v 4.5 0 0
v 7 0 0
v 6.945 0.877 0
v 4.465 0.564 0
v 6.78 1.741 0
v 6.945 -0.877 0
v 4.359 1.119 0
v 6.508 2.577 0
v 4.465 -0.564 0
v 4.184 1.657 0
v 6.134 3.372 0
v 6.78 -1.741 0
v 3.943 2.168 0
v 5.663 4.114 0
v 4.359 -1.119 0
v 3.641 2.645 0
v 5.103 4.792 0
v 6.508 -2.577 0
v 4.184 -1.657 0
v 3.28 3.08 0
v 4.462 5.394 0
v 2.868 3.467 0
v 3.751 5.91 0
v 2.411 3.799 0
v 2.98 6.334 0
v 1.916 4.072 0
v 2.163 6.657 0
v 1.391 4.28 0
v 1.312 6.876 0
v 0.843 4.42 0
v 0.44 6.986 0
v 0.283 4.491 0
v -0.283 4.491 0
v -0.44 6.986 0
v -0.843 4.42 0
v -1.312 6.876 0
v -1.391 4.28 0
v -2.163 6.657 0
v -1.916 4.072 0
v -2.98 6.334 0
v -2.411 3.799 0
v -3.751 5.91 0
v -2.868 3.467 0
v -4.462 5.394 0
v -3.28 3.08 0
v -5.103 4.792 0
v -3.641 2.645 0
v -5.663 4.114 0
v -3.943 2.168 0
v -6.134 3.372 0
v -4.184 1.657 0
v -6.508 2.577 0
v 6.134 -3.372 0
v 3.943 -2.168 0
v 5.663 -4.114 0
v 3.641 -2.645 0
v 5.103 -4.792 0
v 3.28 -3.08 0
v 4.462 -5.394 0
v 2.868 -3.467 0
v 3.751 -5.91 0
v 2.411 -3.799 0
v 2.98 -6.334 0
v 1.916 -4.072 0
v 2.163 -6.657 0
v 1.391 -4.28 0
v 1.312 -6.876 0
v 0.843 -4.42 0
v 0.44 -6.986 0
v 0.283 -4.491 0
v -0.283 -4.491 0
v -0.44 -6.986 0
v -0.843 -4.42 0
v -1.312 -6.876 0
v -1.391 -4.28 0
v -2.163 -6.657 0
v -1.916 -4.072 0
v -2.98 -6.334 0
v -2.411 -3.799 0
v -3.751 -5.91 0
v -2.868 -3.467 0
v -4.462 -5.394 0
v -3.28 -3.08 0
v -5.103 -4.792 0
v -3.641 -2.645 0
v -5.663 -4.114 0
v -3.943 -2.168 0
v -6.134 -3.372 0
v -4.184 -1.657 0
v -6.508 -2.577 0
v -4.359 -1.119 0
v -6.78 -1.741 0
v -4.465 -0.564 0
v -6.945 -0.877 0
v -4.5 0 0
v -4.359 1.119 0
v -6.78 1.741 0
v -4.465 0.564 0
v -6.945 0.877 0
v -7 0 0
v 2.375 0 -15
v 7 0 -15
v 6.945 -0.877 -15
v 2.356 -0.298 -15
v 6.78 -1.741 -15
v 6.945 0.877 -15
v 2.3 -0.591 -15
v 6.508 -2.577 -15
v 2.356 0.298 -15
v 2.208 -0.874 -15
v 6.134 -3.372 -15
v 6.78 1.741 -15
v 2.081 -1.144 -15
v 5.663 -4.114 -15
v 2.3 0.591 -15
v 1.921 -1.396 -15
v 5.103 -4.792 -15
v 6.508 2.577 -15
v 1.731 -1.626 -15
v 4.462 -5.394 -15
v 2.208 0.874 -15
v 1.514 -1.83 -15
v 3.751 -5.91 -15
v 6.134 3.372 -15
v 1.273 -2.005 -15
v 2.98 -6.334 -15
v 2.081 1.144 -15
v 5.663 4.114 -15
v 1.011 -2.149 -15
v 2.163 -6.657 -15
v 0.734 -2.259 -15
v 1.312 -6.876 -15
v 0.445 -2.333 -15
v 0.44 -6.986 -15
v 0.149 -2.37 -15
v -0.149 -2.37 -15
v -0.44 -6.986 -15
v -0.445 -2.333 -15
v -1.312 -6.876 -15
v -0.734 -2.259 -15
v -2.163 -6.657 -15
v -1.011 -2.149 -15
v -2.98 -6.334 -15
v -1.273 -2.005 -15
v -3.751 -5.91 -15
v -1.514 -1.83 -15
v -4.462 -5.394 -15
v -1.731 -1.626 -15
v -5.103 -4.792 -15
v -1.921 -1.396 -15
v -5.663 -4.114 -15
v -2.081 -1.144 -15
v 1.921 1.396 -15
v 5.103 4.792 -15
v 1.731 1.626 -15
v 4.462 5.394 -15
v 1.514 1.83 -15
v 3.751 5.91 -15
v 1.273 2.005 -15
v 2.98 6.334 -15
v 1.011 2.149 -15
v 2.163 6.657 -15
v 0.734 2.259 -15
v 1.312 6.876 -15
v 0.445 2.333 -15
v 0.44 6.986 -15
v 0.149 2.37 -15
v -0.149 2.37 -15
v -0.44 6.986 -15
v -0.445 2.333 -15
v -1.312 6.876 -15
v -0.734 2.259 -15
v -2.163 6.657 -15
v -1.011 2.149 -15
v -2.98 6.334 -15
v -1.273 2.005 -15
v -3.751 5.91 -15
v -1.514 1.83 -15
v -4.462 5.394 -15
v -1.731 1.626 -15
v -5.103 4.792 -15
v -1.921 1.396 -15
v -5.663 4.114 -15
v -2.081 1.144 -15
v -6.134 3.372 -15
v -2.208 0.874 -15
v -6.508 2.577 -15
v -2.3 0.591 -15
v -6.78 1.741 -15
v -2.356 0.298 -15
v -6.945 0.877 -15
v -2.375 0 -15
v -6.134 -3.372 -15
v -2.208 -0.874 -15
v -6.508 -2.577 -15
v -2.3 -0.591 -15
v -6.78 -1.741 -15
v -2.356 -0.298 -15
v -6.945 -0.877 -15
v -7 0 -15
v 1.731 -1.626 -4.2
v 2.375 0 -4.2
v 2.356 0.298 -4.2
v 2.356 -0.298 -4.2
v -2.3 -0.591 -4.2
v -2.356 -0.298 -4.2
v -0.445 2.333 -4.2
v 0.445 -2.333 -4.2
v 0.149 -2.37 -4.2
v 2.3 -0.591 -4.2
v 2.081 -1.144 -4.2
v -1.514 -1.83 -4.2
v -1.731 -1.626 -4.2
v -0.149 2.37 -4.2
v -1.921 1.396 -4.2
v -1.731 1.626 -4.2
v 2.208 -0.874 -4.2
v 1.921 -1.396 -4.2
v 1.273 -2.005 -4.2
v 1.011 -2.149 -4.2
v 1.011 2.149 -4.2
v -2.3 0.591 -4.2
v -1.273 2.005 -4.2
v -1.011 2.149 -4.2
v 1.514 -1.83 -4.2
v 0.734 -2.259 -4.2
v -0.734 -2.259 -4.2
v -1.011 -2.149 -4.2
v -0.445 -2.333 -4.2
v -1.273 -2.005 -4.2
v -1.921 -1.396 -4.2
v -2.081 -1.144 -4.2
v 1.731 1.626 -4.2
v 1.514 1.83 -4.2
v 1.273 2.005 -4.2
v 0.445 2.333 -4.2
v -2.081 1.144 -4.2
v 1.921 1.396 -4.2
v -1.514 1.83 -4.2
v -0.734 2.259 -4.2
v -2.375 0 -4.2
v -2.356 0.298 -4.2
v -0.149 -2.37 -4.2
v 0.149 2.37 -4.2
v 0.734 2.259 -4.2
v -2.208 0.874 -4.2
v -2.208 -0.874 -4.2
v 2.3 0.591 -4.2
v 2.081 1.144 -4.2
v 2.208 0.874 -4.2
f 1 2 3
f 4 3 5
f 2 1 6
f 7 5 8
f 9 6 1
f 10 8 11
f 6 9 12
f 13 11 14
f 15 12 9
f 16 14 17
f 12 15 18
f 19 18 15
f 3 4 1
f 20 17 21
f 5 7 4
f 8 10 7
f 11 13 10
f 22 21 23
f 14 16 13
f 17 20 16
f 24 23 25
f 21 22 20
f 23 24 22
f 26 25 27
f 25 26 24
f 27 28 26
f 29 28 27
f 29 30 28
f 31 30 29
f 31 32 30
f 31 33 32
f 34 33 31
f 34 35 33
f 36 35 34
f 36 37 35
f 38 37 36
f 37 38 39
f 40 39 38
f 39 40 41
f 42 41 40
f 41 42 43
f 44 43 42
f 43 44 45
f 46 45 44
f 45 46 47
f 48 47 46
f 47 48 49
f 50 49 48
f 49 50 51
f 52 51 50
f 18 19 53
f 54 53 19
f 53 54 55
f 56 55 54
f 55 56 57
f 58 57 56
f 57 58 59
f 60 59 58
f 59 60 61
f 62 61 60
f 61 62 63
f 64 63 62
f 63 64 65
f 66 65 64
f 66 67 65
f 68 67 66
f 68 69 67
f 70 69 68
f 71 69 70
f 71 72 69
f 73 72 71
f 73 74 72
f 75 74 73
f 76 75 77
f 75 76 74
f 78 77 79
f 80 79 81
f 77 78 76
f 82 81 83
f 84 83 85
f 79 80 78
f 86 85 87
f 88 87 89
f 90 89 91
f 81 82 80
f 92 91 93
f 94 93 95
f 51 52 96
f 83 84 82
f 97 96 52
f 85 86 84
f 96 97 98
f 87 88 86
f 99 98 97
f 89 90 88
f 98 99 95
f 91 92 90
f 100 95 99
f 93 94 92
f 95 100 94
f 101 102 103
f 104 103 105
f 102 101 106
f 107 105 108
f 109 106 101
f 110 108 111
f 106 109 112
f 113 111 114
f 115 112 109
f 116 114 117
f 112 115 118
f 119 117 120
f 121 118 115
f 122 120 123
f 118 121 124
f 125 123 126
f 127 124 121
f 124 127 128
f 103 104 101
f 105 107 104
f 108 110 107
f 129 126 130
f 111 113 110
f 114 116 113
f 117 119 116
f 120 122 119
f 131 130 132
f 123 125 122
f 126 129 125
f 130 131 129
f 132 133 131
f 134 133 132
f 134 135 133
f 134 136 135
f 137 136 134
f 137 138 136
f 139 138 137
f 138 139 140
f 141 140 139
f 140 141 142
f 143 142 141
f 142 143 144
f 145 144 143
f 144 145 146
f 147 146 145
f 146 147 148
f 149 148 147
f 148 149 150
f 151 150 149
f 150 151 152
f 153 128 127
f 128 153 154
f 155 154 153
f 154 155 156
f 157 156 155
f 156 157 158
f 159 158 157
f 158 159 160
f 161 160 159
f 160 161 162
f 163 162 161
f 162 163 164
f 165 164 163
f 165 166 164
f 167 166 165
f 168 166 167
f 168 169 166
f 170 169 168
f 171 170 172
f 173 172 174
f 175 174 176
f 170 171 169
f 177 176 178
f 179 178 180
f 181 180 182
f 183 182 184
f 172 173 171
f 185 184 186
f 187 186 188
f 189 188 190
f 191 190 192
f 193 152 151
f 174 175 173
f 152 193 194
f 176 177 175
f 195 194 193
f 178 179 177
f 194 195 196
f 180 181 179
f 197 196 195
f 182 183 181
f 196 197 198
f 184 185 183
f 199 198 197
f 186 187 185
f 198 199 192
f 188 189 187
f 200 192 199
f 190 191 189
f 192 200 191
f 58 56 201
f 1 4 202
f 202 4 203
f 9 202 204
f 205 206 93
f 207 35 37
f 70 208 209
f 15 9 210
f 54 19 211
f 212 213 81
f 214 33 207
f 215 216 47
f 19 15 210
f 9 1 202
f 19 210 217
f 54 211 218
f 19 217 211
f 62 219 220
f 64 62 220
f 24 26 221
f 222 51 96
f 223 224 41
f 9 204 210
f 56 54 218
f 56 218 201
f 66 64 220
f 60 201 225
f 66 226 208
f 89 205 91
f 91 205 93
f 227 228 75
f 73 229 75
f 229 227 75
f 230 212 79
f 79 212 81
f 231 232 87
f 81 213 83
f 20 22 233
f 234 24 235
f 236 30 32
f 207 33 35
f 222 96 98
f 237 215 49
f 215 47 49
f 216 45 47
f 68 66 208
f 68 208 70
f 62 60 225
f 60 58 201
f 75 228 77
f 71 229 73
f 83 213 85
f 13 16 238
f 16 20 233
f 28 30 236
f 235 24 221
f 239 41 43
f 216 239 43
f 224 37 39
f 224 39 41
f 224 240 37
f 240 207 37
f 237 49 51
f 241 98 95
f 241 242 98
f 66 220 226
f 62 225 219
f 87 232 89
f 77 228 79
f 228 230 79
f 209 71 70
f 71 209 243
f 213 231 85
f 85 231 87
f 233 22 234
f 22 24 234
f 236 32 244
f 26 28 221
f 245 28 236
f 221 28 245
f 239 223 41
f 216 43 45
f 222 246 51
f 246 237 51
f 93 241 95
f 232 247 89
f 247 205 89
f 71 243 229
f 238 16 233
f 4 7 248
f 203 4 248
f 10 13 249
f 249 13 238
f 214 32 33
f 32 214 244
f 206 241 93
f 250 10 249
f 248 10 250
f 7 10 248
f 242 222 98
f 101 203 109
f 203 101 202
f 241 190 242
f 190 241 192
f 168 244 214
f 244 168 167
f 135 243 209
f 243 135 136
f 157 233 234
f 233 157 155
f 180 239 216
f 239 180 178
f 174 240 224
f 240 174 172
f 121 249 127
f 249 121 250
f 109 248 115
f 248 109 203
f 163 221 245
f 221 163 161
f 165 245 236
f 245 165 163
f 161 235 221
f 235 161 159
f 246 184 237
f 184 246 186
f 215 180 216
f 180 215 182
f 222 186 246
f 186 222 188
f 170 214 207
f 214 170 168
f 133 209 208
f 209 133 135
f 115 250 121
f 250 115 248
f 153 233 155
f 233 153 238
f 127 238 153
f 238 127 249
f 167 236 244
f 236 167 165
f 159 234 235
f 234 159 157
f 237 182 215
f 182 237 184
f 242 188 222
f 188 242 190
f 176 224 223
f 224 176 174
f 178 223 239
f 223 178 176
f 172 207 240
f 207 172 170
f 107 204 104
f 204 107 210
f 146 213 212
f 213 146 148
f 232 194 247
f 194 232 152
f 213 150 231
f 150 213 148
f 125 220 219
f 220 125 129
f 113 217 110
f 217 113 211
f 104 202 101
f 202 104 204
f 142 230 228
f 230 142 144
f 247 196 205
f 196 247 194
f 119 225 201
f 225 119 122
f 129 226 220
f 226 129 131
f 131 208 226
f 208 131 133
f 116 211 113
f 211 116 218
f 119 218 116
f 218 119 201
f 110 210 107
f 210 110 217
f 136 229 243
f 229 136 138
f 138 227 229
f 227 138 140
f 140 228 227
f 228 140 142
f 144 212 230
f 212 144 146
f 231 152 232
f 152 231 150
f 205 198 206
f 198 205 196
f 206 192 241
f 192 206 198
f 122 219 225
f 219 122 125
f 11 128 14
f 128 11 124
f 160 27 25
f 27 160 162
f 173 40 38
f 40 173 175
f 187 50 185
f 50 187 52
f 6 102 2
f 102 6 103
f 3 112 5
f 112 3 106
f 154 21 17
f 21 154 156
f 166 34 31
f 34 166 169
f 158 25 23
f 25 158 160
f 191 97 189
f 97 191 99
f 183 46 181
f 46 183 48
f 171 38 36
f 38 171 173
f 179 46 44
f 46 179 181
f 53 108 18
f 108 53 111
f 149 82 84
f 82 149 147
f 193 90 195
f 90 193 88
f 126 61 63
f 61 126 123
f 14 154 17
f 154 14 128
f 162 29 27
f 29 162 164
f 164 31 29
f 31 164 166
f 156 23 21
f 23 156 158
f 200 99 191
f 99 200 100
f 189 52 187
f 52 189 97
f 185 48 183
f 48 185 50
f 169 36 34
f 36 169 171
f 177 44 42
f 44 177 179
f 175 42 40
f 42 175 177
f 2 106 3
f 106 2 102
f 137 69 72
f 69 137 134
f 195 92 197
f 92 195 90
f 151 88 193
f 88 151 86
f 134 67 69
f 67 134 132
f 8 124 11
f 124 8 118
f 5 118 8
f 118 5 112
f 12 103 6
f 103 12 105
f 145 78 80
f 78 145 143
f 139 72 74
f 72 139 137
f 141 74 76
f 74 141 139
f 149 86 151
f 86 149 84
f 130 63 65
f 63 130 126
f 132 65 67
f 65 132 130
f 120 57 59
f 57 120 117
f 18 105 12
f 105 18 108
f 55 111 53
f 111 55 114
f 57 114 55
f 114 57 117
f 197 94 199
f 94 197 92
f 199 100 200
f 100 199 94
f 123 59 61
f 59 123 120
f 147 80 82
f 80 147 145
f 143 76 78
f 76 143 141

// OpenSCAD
$fn = 50;


difference() {
	union() {
		translate(v = [0, 0, -15.0000000000]) {
			cylinder(h = 15, r = 7.0000000000);
		}
	}
	union() {
		translate(v = [0, 0, 0]) {
			rotate(a = [0, 0, 0]) {
				difference() {
					union() {
						#translate(v = [0, 0, -15.0000000000]) {
							cylinder(h = 15, r = 2.2500000000);
						}
						#translate(v = [0, 0, -4.2000000000]) {
							cylinder(h = 4.2000000000, r = 7.0000000000, r1 = 2.3750000000, r2 = 4.5000000000);
						}
						#translate(v = [0, 0, -15.0000000000]) {
							cylinder(h = 15, r = 2.3750000000);
						}
						#translate(v = [0, 0, -15.0000000000]) {
							cylinder(h = 15, r = 2.2500000000);
						}
					}
					union();
				}
			}
		}
	}
}
